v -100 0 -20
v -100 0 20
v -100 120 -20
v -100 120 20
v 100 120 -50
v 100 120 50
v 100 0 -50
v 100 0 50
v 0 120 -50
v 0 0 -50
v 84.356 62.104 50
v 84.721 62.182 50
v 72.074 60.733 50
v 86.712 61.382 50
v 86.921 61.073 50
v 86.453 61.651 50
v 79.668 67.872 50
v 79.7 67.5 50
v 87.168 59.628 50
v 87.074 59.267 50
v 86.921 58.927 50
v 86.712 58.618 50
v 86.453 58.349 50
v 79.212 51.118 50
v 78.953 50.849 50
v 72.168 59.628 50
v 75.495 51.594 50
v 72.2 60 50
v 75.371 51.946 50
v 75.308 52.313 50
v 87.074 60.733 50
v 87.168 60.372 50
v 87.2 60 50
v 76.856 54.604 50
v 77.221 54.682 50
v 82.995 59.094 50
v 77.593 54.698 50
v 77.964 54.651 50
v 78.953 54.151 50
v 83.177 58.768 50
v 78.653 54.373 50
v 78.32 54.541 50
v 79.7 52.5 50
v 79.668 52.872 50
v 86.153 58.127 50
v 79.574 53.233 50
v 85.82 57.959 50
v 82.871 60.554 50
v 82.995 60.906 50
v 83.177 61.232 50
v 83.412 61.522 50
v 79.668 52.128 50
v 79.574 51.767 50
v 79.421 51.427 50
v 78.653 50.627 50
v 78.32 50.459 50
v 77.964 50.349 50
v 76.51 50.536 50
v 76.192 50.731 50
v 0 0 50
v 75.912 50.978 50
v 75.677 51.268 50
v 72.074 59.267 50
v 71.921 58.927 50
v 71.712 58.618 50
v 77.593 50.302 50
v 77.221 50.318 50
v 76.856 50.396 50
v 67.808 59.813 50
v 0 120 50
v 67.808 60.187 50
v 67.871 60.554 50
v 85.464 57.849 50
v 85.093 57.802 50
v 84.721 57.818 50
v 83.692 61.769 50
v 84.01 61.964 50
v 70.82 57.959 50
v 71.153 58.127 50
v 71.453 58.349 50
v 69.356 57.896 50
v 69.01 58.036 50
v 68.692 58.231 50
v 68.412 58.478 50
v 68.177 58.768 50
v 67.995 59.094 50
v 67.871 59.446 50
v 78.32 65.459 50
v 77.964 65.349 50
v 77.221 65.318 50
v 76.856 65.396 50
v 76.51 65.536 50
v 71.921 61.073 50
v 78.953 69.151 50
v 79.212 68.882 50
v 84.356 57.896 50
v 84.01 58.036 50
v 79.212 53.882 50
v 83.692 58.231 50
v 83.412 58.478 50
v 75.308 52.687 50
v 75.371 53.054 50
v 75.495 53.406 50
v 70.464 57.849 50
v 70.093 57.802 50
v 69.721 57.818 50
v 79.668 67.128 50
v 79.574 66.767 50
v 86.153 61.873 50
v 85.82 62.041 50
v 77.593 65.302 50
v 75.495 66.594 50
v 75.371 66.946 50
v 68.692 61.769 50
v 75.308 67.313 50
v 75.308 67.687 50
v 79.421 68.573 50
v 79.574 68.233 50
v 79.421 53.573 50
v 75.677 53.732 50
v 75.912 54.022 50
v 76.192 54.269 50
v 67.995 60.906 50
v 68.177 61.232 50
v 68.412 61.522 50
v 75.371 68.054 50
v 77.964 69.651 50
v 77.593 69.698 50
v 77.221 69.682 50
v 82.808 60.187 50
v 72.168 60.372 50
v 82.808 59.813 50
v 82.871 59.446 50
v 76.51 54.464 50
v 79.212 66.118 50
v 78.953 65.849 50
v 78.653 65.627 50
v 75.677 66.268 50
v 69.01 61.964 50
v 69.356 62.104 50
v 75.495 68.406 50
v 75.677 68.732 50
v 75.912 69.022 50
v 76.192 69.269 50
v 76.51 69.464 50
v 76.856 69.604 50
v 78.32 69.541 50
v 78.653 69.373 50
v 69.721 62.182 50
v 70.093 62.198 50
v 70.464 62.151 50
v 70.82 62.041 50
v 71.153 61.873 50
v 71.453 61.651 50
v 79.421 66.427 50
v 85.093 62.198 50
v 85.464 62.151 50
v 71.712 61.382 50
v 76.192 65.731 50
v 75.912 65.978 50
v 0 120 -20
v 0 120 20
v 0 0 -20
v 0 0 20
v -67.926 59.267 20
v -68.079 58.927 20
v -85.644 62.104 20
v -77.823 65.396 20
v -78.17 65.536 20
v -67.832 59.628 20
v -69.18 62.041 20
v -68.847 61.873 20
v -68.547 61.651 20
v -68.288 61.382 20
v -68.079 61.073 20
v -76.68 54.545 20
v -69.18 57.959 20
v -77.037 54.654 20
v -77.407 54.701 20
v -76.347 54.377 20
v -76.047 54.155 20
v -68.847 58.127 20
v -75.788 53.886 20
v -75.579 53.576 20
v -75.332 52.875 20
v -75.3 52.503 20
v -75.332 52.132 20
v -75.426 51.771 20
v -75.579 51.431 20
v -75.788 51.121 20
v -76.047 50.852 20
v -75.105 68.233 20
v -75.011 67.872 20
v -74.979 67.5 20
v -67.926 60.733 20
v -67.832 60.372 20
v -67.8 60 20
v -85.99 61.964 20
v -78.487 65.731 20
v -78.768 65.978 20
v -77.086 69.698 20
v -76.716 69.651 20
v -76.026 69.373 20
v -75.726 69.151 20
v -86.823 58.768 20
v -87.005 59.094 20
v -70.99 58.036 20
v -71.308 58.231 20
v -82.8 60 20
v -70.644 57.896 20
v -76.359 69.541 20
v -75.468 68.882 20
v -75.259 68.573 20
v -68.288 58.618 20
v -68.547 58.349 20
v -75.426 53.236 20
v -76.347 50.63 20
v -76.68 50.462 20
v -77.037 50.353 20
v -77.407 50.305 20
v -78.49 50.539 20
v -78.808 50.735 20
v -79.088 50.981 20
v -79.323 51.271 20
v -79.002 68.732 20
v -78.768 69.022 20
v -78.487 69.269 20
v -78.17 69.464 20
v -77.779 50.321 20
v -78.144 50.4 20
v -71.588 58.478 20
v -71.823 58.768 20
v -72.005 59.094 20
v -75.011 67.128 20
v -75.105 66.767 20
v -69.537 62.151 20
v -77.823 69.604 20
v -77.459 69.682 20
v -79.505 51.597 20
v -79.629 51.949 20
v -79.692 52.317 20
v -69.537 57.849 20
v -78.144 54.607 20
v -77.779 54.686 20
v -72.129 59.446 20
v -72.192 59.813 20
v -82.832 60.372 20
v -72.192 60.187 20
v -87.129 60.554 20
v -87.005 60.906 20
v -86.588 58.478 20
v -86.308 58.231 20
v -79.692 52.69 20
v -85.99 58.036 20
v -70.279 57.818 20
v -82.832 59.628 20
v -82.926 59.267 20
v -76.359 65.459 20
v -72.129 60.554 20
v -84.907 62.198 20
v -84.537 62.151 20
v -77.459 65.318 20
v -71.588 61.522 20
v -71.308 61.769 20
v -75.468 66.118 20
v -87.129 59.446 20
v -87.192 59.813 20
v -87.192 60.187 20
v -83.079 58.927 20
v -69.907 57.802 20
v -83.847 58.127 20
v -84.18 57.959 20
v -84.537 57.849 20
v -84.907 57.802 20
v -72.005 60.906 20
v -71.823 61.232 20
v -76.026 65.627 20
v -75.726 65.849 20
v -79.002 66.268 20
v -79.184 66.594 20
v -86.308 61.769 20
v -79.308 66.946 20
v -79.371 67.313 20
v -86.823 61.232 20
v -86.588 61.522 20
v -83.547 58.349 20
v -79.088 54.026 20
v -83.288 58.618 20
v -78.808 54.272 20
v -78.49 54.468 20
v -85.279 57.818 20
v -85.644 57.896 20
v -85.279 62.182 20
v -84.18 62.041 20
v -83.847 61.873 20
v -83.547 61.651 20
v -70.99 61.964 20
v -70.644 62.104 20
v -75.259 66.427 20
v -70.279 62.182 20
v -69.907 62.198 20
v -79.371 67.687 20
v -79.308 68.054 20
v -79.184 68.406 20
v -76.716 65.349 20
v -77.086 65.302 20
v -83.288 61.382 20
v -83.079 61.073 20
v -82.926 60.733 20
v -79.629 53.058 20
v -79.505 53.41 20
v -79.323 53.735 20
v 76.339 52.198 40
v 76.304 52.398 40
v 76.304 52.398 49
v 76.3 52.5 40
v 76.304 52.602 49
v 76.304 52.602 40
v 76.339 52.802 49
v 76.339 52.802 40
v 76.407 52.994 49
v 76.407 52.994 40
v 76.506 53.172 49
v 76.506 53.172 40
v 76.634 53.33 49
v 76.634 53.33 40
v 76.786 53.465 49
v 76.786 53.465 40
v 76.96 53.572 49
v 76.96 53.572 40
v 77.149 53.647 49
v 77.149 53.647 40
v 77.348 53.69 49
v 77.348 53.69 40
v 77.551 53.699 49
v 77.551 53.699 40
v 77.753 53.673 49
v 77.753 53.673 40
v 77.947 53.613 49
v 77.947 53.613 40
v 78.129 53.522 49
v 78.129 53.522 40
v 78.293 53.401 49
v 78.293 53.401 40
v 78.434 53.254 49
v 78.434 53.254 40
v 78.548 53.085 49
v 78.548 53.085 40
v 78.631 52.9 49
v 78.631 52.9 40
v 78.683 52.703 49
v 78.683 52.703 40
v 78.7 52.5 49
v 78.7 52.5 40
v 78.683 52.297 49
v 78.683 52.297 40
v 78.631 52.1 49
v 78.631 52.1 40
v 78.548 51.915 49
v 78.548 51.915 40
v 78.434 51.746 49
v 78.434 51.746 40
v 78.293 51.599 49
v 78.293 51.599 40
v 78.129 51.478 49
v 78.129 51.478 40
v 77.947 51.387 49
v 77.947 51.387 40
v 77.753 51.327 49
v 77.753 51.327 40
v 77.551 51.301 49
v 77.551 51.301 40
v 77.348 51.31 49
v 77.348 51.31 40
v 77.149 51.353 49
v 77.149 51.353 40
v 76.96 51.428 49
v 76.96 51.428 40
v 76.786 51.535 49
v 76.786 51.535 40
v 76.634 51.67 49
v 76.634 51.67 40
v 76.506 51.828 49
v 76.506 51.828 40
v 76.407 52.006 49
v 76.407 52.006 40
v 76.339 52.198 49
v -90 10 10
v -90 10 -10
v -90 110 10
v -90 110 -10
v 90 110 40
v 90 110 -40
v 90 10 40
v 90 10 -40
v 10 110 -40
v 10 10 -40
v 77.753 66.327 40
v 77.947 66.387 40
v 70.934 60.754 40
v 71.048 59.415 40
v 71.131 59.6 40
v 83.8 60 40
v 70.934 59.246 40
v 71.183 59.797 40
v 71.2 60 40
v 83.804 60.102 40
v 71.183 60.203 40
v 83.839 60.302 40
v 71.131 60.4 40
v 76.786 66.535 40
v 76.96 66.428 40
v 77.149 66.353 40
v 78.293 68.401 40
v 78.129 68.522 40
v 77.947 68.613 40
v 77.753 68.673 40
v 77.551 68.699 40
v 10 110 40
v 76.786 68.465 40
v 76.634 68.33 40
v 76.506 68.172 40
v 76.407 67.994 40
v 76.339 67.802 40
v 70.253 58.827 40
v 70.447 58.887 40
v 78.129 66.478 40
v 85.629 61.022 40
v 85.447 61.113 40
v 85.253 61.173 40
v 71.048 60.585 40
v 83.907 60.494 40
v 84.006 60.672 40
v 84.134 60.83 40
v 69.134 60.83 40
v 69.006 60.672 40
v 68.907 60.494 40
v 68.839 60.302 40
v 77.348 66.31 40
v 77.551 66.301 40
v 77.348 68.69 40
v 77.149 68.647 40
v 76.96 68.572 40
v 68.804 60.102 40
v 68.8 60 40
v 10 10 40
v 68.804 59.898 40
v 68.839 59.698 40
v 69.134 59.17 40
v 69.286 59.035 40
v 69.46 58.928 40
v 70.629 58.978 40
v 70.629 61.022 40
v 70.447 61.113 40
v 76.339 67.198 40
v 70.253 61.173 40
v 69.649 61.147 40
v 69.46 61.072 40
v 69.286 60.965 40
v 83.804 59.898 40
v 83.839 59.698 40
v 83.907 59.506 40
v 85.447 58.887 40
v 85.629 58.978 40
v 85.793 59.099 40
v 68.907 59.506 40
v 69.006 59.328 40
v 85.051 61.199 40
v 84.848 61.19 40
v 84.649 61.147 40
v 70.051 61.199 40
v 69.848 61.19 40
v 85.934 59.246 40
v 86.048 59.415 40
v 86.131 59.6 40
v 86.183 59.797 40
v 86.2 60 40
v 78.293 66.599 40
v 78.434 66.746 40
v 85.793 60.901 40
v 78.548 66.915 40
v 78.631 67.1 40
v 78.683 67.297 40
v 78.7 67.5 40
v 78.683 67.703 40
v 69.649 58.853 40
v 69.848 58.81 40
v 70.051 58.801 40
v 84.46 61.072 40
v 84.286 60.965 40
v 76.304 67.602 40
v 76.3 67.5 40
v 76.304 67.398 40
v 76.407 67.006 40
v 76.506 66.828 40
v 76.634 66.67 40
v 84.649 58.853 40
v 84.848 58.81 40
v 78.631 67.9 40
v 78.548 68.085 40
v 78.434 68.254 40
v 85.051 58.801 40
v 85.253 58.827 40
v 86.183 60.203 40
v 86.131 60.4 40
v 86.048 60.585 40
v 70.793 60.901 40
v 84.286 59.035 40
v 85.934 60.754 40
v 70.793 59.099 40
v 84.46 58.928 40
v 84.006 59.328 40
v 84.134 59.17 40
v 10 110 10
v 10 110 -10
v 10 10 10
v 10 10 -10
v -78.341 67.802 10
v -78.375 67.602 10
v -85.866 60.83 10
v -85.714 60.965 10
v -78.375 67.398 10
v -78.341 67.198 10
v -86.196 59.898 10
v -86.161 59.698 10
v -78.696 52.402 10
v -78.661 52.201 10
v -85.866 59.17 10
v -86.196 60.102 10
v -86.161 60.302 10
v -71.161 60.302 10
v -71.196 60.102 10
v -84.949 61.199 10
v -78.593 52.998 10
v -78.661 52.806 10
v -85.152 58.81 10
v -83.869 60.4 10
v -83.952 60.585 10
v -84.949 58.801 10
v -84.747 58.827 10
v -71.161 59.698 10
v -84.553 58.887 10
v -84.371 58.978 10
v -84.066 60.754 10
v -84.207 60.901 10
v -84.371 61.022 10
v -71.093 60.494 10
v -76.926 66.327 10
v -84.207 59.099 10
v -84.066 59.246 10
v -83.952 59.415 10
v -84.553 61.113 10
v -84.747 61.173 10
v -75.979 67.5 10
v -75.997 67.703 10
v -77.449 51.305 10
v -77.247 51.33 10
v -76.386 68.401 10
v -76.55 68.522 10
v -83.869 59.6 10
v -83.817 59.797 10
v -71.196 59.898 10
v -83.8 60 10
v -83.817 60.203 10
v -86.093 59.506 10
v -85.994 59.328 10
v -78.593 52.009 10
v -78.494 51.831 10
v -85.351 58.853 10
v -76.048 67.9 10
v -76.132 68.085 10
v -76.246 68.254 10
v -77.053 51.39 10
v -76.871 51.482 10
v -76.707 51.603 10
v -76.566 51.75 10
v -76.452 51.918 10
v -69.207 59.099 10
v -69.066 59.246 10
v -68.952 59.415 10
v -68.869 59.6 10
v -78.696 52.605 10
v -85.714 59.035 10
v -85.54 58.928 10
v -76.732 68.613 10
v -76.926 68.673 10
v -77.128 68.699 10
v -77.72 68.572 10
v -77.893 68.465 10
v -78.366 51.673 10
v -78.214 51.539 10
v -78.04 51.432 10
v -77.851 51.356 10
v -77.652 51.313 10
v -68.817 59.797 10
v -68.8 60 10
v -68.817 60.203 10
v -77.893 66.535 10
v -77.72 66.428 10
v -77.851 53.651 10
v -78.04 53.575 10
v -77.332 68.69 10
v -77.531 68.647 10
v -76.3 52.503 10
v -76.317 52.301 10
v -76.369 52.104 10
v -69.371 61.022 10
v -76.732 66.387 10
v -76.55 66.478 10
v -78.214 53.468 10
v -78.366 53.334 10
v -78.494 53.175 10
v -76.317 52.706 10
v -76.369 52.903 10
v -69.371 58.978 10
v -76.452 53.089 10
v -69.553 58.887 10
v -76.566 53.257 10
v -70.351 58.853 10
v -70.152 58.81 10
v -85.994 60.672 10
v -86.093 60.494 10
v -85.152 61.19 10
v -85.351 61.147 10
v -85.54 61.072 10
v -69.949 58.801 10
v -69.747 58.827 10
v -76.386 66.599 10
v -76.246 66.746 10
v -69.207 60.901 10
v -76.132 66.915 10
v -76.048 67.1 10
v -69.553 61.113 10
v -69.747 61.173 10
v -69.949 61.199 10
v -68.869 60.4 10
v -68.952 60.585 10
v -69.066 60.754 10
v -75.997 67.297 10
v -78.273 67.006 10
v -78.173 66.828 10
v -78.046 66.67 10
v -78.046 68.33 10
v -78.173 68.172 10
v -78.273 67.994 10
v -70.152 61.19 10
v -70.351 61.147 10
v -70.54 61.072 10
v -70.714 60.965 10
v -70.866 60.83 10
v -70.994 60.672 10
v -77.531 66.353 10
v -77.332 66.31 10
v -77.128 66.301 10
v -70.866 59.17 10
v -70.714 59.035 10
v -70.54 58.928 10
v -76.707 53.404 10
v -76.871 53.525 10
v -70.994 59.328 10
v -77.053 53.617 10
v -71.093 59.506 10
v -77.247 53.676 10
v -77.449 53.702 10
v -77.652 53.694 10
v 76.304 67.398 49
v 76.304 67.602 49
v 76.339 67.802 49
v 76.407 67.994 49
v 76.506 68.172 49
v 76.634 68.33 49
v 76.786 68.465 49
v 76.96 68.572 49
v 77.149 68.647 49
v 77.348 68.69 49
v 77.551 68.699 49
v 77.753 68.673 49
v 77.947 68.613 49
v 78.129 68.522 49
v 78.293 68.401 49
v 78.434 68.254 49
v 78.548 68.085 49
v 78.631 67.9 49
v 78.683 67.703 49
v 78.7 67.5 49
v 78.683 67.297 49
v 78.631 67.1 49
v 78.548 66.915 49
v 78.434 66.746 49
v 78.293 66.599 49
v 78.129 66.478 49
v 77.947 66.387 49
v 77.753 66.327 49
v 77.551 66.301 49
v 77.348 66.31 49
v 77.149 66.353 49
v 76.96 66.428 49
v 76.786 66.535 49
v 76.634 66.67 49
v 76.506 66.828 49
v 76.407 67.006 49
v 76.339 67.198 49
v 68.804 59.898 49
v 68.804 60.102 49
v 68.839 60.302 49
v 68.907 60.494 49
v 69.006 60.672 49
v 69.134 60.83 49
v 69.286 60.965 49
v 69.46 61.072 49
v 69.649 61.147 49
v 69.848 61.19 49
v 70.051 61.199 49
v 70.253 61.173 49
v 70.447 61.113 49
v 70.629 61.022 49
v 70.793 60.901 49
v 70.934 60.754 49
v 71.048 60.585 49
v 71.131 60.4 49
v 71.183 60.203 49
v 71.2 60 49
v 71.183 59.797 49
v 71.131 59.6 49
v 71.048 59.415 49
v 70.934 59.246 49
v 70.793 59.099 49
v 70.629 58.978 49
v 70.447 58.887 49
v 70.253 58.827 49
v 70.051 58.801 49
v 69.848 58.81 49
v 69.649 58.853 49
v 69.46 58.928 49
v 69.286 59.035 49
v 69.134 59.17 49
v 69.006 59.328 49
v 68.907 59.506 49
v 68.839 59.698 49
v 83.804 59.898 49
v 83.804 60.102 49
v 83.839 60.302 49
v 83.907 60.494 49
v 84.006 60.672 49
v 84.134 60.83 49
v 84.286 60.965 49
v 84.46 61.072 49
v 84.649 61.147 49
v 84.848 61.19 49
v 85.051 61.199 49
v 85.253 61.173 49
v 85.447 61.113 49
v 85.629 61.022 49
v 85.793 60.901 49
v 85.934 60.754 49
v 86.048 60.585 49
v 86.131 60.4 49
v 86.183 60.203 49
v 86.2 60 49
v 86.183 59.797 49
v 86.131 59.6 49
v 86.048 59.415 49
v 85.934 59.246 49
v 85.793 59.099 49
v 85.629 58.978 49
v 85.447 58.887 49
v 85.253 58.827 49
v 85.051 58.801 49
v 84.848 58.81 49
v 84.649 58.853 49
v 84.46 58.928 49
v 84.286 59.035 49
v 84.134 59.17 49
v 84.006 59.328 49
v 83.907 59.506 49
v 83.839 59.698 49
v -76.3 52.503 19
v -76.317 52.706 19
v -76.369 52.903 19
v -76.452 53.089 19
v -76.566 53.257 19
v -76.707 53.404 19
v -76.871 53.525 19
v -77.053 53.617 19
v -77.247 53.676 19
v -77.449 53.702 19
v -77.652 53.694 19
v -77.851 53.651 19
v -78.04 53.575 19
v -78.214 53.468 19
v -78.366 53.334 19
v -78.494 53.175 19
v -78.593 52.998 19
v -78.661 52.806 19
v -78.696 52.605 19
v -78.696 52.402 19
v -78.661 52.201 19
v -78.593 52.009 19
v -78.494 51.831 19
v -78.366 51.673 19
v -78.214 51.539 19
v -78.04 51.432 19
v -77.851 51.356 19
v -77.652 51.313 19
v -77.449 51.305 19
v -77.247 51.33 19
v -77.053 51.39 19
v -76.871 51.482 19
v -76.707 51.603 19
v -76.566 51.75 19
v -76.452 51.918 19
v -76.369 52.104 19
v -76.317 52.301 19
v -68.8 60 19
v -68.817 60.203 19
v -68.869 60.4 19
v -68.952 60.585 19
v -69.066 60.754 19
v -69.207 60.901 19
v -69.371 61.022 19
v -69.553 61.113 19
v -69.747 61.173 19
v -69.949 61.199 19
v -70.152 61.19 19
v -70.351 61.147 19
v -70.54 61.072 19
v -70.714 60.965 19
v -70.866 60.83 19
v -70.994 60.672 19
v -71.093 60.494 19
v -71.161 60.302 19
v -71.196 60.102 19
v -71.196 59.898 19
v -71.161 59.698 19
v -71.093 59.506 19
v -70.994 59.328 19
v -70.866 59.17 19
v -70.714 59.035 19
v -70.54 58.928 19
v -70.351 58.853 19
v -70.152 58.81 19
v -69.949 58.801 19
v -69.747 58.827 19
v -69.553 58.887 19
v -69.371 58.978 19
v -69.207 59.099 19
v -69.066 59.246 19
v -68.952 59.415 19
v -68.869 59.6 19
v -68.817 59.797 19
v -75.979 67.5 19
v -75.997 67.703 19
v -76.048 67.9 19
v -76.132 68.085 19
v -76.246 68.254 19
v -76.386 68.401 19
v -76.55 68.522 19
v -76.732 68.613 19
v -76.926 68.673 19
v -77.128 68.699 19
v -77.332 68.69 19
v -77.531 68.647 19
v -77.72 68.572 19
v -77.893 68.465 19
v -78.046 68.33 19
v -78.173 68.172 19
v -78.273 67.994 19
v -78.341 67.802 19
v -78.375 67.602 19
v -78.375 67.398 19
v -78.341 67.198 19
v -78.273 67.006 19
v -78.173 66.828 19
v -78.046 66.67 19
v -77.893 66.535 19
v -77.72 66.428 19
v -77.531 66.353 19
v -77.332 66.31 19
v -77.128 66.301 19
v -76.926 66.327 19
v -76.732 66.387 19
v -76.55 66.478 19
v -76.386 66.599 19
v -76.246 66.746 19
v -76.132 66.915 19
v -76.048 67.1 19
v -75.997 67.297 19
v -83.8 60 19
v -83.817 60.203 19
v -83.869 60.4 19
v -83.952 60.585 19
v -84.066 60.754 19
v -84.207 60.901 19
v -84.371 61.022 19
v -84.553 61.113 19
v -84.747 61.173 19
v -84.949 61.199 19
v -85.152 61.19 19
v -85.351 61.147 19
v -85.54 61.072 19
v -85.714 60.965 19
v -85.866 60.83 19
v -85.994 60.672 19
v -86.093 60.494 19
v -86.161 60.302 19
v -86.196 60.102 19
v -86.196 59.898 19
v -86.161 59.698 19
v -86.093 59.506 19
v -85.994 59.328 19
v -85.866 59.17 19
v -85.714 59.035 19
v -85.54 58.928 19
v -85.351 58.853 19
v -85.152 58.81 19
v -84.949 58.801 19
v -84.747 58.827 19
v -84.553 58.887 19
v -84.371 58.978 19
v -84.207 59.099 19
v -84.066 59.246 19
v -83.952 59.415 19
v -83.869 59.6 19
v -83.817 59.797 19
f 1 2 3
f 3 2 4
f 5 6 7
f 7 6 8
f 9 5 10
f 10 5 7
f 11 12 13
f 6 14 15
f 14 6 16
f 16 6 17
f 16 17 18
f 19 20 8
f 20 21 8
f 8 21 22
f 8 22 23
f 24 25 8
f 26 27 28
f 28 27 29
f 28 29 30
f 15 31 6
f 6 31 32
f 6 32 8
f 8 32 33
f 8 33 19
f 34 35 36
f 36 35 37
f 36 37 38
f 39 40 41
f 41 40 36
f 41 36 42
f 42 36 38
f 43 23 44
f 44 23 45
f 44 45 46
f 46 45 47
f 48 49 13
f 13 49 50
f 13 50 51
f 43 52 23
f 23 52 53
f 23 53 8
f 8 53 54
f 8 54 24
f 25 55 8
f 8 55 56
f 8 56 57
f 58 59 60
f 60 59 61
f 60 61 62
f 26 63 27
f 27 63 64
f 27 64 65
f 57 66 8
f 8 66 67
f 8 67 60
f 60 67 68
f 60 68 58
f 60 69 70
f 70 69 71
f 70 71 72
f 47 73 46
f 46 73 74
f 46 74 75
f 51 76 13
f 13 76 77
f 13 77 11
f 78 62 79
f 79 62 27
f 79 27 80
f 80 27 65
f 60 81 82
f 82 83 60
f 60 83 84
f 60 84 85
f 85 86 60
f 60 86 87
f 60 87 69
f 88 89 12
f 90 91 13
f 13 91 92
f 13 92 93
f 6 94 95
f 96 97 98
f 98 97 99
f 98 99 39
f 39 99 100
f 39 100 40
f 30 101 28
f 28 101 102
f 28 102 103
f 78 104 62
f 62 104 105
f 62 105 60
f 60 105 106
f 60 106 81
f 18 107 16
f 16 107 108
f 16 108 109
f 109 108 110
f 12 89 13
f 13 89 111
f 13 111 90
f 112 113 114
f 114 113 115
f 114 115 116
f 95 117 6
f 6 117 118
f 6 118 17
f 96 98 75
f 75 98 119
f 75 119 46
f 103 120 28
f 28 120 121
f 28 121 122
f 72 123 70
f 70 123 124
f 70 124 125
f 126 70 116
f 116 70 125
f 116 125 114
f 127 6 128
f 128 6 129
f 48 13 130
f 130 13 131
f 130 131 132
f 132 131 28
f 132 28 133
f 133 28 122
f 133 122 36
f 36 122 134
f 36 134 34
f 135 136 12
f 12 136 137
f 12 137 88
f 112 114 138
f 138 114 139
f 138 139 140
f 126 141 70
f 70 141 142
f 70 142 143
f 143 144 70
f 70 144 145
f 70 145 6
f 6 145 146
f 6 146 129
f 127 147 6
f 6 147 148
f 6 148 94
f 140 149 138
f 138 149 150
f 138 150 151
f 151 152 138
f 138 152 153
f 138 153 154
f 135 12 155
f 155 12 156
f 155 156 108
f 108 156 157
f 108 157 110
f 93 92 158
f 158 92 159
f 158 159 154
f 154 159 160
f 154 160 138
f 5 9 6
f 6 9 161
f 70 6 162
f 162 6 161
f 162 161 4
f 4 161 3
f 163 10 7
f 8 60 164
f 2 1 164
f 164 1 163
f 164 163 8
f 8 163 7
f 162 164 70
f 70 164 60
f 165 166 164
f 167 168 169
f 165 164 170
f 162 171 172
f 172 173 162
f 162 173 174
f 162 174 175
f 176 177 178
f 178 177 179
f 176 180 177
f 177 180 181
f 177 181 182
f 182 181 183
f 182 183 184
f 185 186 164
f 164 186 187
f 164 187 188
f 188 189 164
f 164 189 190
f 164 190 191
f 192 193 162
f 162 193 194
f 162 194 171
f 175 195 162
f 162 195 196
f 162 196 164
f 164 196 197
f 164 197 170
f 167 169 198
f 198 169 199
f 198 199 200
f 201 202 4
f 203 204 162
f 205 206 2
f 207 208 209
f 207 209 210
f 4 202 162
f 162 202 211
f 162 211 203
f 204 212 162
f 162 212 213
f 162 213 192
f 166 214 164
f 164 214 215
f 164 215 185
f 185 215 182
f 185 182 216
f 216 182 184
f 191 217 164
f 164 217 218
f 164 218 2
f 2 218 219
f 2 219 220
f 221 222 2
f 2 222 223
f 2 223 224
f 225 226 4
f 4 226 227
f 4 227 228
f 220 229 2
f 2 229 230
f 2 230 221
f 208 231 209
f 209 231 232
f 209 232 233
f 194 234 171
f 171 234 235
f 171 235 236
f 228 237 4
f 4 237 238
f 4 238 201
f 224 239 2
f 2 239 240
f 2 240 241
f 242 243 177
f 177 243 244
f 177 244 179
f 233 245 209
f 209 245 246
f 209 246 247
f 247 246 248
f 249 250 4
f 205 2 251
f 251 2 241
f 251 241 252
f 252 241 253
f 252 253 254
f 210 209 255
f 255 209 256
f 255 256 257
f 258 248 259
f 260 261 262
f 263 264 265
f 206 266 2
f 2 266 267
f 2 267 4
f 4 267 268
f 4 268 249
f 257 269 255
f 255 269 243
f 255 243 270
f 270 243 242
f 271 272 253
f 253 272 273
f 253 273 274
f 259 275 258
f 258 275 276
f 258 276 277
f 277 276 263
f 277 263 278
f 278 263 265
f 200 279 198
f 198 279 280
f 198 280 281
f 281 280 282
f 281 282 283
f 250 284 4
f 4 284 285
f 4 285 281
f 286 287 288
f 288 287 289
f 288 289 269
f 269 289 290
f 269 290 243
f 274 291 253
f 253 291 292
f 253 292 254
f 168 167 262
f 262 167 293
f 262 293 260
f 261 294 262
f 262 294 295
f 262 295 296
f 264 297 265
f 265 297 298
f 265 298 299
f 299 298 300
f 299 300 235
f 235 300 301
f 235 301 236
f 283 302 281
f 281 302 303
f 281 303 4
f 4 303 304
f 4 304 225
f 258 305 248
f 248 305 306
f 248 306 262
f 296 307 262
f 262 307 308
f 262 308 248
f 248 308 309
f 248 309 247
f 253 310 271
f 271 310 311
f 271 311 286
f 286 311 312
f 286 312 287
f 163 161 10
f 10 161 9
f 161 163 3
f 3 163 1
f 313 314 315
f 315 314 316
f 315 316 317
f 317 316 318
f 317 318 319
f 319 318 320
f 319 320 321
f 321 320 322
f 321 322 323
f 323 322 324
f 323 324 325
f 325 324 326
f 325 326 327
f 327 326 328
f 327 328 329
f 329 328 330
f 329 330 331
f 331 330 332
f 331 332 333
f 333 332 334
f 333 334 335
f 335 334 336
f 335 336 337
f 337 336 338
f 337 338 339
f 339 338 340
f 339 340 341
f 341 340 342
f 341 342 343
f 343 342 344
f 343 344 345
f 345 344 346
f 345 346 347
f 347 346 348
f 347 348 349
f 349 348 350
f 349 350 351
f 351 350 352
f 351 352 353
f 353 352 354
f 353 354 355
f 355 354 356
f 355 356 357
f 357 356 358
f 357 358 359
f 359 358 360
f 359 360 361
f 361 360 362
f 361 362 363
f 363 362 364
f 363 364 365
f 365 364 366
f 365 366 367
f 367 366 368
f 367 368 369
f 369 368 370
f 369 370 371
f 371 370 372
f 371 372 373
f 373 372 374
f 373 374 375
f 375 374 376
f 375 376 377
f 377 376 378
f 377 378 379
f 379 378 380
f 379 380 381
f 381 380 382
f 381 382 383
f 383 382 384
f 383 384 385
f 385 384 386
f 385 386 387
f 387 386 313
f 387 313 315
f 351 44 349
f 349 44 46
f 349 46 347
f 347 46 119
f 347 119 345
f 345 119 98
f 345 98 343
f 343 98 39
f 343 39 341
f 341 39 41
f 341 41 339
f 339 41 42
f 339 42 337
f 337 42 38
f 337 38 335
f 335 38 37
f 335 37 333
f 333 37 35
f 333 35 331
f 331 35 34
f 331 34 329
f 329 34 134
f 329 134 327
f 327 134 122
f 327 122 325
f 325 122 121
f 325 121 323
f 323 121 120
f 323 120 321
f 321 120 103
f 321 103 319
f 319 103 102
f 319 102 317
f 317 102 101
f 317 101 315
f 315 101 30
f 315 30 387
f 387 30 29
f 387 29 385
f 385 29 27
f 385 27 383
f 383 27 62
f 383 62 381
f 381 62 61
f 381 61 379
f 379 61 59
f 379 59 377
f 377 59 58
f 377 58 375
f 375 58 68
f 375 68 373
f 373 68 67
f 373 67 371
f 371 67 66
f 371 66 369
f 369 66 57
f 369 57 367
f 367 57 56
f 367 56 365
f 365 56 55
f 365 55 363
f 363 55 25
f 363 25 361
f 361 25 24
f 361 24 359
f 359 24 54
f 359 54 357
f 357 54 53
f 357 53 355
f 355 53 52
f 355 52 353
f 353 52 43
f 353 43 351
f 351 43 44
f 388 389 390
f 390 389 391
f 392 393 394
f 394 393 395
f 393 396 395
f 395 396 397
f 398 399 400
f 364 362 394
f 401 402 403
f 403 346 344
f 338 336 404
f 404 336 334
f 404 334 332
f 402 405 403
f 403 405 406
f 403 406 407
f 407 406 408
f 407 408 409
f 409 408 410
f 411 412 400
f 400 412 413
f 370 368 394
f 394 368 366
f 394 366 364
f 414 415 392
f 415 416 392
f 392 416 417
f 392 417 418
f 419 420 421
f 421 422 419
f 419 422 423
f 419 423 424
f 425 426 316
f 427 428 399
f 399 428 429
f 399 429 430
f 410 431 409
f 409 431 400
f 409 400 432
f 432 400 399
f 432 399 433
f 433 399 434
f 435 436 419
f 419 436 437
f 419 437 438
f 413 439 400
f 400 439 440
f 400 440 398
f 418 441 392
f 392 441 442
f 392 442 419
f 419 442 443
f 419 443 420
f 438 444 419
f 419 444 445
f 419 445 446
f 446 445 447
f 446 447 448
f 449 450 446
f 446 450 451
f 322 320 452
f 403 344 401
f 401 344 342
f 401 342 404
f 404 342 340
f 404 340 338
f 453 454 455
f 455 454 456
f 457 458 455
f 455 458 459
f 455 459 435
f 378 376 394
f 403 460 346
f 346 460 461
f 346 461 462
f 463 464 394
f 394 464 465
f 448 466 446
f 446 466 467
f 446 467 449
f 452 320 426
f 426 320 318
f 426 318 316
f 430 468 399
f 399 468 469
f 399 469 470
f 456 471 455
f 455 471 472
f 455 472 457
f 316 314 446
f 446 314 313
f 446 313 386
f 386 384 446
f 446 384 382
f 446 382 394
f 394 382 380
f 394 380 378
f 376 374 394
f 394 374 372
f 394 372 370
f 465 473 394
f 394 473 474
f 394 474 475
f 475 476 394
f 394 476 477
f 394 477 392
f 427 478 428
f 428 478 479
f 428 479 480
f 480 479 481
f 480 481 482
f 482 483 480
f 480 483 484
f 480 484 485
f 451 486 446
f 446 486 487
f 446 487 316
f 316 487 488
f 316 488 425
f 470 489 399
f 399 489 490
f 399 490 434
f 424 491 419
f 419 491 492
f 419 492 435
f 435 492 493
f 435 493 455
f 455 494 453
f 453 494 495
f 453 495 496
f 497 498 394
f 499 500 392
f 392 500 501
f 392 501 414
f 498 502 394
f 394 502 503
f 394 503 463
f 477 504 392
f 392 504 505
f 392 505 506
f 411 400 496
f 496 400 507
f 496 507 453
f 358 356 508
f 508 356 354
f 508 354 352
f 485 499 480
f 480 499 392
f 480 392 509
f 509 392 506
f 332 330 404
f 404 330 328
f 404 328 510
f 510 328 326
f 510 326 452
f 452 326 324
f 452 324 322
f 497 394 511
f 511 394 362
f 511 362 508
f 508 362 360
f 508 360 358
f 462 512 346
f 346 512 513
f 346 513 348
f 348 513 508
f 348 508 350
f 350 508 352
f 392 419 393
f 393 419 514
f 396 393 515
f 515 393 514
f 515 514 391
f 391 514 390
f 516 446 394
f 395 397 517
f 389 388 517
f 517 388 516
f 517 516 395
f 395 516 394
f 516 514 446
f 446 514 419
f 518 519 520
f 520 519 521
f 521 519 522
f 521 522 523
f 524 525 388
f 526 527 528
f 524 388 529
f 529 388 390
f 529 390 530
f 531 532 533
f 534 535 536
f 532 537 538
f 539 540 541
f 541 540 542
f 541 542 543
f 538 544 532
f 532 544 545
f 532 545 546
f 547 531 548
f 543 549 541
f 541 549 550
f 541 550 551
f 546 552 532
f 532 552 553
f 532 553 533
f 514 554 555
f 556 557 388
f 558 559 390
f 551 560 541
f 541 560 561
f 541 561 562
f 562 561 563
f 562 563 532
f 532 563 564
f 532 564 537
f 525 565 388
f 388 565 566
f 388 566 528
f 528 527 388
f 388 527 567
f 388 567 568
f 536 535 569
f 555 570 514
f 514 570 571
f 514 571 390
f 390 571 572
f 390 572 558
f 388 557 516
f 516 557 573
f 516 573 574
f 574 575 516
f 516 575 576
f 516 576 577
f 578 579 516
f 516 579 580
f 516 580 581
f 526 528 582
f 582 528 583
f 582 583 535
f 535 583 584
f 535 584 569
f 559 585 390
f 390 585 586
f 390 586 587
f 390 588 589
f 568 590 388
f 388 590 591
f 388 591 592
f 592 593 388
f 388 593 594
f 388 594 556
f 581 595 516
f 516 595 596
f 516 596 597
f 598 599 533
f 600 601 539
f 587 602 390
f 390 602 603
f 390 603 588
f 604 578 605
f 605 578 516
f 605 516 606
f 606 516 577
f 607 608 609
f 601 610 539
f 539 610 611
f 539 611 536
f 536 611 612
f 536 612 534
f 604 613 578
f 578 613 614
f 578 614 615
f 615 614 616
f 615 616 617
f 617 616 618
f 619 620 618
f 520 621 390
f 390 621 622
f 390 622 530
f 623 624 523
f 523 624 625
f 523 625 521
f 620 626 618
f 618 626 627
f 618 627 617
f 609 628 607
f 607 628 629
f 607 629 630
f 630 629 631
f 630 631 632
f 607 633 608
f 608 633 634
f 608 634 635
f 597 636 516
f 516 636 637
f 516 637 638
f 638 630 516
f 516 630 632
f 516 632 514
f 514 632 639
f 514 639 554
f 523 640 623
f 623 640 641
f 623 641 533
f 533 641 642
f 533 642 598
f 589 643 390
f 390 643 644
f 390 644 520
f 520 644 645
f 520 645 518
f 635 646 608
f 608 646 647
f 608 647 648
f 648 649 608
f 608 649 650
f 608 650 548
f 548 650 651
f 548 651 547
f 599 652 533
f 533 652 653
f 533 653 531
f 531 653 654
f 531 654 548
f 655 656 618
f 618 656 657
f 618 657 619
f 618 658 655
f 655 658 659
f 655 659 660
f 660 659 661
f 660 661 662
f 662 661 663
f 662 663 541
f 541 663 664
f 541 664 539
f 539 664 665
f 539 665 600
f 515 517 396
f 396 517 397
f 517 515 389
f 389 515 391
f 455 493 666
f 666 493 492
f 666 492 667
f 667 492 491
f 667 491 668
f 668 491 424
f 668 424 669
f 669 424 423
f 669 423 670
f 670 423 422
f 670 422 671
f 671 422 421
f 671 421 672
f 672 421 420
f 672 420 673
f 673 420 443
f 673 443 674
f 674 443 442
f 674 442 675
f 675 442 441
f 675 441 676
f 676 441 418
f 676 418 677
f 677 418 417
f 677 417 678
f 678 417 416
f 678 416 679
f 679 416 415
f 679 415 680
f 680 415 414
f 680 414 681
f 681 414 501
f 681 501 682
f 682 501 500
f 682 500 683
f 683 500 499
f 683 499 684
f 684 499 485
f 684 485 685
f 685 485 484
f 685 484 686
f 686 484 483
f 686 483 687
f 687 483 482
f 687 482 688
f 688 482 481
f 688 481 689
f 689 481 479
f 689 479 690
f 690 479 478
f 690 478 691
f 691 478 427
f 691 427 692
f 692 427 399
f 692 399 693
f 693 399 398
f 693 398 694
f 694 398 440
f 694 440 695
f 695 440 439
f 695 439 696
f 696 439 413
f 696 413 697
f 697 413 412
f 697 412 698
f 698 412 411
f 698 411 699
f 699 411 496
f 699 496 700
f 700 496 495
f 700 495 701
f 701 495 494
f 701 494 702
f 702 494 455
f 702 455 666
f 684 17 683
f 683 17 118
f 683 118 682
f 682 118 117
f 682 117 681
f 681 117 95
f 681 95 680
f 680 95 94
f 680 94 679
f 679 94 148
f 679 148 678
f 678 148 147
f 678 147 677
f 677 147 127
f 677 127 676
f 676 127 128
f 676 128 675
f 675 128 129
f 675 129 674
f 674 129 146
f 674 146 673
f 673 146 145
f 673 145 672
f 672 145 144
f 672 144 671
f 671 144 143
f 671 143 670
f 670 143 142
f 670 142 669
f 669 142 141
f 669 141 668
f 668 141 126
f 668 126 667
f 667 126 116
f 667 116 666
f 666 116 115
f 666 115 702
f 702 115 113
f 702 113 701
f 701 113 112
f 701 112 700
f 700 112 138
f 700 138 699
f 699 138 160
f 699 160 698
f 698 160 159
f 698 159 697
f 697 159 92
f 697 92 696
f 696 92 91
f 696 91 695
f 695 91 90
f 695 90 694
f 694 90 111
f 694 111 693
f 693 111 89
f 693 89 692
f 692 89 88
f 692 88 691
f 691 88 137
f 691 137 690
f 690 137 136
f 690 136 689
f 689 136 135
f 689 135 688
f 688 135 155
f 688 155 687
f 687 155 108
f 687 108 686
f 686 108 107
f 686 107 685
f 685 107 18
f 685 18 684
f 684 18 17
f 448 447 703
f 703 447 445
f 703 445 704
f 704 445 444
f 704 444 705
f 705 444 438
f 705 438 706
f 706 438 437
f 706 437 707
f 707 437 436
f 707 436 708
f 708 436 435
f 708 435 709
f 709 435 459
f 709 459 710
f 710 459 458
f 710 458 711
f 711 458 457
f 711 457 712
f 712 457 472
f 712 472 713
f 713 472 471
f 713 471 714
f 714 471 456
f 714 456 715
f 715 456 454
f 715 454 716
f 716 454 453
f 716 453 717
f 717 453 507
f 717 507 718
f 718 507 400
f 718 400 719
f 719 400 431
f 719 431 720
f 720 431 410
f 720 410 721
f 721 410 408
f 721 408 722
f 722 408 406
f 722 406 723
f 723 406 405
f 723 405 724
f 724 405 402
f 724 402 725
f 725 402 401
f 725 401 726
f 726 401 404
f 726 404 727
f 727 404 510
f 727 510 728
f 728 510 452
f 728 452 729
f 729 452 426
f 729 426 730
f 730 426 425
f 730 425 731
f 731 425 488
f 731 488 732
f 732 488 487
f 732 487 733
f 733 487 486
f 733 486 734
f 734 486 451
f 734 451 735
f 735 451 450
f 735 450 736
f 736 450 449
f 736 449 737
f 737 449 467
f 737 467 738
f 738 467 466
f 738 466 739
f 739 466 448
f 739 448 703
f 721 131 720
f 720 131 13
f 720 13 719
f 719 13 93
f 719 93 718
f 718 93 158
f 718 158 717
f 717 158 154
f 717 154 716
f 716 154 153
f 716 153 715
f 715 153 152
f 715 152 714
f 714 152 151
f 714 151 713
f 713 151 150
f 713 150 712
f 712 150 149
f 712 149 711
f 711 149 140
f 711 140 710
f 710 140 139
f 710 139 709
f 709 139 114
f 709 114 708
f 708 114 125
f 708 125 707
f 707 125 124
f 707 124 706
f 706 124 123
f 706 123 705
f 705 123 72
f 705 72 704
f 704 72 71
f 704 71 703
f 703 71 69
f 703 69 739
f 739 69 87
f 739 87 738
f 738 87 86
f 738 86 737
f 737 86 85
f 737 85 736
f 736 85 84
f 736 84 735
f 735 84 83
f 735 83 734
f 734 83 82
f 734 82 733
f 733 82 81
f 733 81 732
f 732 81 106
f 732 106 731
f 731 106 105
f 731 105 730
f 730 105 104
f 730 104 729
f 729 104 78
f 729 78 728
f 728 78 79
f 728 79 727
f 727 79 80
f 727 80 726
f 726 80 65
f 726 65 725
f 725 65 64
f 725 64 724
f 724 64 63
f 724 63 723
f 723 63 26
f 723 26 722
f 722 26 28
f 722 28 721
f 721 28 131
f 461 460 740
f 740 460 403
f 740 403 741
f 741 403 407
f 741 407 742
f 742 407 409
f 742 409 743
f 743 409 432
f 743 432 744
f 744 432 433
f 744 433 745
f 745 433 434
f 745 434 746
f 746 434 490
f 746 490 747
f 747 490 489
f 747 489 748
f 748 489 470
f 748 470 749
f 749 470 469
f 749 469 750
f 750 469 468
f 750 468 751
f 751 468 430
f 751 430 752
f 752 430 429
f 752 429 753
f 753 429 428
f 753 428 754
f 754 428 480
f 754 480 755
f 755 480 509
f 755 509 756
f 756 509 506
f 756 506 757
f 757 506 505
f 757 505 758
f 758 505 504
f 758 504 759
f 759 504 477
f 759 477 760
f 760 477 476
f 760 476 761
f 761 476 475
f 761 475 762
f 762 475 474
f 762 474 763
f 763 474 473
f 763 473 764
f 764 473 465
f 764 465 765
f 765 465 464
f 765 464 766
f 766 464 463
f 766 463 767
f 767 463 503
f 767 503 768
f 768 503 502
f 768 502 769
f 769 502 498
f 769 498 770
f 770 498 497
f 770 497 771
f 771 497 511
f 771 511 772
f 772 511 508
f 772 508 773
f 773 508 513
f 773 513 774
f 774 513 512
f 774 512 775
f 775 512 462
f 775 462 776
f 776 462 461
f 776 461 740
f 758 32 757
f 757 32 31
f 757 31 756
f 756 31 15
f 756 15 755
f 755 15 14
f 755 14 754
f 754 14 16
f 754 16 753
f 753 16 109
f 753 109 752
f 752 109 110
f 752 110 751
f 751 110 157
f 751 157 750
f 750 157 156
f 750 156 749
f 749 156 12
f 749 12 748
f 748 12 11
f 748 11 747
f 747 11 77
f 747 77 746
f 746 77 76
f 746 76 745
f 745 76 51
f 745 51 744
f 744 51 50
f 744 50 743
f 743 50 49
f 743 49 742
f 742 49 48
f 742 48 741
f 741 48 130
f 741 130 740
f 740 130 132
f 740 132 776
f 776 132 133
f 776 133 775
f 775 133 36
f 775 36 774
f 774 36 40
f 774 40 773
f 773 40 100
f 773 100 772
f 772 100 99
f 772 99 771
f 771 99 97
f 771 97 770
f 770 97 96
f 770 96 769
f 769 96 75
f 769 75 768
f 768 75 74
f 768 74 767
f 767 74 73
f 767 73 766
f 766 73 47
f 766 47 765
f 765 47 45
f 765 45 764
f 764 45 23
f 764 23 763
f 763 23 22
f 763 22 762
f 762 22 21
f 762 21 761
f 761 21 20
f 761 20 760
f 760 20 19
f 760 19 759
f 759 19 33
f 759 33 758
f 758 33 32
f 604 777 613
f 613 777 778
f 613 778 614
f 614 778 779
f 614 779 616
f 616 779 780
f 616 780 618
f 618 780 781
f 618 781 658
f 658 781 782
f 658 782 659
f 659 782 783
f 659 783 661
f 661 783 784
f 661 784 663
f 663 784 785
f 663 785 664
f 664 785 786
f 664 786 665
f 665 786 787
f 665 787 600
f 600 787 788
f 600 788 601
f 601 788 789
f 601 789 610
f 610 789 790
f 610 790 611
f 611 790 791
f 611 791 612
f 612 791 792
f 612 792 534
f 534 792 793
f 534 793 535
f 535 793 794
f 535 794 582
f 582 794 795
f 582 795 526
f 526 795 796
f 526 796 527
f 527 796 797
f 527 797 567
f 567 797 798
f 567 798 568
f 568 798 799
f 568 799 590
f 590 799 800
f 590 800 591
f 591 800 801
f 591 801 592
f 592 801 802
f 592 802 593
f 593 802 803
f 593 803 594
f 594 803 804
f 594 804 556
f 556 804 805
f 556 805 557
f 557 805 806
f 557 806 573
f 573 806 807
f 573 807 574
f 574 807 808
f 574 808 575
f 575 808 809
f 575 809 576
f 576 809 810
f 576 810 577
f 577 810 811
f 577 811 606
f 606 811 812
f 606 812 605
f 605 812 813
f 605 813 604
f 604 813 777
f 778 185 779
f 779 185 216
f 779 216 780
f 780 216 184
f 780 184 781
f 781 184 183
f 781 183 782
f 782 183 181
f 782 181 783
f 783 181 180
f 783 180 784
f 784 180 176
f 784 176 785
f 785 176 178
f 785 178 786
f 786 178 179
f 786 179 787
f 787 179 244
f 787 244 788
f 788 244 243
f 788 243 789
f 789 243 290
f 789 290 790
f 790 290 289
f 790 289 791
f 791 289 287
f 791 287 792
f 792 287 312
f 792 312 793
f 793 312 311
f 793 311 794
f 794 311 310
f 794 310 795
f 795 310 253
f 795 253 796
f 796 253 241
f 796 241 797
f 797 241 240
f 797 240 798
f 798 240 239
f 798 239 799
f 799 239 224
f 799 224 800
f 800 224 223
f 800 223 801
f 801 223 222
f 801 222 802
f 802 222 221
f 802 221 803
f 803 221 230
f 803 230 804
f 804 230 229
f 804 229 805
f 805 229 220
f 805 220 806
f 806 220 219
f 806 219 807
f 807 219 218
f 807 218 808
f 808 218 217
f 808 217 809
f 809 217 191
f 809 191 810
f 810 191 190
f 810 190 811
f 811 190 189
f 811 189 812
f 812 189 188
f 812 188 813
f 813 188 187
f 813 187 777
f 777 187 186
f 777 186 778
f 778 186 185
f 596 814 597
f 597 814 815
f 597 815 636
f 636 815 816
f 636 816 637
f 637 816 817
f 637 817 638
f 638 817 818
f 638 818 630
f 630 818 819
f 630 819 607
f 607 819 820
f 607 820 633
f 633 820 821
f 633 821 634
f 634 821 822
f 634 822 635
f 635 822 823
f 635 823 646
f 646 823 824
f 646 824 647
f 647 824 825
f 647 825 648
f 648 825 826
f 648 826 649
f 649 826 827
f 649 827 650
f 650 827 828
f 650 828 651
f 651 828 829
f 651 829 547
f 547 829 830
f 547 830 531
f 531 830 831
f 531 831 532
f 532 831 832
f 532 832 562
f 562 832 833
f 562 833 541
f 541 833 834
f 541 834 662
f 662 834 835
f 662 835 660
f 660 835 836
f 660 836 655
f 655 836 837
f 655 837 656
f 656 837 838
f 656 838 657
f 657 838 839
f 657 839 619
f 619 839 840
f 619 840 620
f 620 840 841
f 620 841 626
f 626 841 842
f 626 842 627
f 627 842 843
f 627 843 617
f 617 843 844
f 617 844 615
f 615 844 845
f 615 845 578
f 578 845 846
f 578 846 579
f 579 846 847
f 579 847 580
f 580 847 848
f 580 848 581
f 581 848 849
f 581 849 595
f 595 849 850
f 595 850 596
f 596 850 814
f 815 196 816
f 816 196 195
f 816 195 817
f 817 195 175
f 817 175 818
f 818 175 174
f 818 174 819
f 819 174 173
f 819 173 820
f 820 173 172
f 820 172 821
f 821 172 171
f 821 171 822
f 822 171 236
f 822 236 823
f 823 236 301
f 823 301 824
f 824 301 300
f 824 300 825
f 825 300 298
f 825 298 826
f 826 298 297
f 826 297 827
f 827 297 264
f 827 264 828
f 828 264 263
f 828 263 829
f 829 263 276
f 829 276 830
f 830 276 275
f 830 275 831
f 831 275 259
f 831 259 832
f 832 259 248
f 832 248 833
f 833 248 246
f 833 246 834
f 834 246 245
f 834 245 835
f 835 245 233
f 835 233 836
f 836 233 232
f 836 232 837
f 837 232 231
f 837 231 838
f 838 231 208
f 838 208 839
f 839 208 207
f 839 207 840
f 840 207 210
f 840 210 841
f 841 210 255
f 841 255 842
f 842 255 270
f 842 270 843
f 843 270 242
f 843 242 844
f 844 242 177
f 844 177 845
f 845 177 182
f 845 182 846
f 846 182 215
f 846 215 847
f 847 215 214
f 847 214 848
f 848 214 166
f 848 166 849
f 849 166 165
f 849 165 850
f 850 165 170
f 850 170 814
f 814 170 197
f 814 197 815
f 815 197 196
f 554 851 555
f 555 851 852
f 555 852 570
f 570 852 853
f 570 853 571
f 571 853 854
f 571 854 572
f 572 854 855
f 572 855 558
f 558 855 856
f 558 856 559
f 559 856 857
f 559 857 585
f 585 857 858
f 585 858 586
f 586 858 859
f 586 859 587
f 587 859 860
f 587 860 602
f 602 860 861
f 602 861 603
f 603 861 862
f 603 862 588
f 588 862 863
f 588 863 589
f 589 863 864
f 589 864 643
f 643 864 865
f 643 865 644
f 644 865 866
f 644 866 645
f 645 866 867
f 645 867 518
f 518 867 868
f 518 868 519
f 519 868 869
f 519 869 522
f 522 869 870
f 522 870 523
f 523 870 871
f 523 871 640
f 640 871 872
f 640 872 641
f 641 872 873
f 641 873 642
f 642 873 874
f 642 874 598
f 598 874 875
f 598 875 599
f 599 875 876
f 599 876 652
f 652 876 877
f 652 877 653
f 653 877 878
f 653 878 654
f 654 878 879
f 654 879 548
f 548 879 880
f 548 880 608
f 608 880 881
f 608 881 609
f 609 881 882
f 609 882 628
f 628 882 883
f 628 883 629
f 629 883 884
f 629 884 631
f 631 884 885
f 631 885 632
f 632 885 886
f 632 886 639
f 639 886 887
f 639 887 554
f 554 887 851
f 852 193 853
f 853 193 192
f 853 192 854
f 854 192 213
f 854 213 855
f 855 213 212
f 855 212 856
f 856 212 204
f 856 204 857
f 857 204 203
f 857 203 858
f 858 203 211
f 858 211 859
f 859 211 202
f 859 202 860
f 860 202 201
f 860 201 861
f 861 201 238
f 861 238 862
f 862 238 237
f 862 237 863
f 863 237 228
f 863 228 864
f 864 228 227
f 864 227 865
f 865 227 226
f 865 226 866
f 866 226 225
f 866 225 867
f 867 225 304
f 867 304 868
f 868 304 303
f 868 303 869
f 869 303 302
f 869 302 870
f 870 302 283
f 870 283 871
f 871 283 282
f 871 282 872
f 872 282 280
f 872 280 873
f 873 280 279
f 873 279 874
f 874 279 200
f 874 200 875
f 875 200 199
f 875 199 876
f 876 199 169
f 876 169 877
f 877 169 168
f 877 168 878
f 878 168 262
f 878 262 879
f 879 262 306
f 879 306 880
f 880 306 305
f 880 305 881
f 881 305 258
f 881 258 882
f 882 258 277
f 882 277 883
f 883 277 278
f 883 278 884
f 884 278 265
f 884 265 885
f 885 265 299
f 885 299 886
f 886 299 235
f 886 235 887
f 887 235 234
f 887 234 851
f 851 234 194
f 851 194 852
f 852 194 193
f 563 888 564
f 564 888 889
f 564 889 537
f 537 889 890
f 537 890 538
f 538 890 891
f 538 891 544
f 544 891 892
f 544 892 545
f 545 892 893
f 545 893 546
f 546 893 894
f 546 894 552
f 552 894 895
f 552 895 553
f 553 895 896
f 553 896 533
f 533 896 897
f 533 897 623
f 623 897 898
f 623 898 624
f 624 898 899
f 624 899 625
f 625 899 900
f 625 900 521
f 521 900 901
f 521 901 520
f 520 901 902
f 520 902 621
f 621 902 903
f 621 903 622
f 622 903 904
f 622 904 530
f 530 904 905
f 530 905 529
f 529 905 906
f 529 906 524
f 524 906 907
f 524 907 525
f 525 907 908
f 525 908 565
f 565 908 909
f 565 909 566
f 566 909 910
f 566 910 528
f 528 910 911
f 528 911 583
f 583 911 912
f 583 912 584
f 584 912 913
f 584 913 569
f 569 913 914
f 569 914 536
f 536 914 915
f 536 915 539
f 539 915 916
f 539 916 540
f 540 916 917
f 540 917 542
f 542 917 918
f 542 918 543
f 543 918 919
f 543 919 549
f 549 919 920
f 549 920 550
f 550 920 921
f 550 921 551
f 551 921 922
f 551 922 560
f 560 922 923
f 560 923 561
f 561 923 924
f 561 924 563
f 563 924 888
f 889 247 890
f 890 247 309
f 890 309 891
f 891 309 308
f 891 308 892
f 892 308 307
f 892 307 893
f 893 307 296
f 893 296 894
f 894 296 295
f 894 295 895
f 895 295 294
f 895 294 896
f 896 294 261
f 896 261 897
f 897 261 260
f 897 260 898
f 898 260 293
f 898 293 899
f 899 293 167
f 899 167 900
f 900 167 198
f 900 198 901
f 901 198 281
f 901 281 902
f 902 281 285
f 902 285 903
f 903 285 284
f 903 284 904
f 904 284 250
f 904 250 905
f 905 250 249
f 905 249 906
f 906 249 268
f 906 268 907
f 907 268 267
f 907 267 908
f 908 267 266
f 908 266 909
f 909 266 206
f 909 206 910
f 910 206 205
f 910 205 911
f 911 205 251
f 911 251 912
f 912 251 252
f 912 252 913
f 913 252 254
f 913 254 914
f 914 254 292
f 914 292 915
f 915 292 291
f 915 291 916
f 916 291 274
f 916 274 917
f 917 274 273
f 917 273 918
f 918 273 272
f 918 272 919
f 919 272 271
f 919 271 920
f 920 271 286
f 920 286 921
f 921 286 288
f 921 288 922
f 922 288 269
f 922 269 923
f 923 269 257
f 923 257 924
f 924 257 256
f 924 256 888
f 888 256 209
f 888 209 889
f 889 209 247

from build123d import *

# Parameters (mm, degrees)
SKETCH3_W                                       = 200
SKETCH3_H                                       = 100
BOSS_EXTRUDE2_DEPTH                             = 120
SKETCH4_W                                       = 100
SKETCH4_H                                       = 120
CUT_EXTRUDE1_DEPTH                              = 30
SKETCH5_W                                       = 100
SKETCH5_H                                       = 120
CUT_EXTRUDE2_DEPTH                              = 30
SHELL1_START                                    = 10
SHELL1_OUTLINE_W                                = 100
SHELL1_OUTLINE_H                                = 80
SHELL1_DEPTH                                    = 80
SHELL1_START_2                                  = -90
SHELL1_2_OUTLINE_W                              = 100
SHELL1_2_OUTLINE_H                              = 20
SHELL1_2_DEPTH                                  = 100
CSK_FOR_M2_FLAT_HEAD_MACHINE_SCREW1_D           = 2.4
CSK_FOR_M2_FLAT_HEAD_MACHINE_SCREW1_DEPTH       = 15
CSK_FOR_M2_FLAT_HEAD_MACHINE_SCREW1_CSINK_D     = 4.4
CSK_FOR_M2_FLAT_HEAD_MACHINE_SCREW1_CSINK_ANGLE = 90
CSK_FOR_M2_FLAT_HEAD_MACHINE_SCREW1_TIP         = 0.721032743
CSK_FOR_M2_FLAT_HEAD_MACHINE_SCREW2_D           = 2.4
CSK_FOR_M2_FLAT_HEAD_MACHINE_SCREW2_DEPTH       = 15
CSK_FOR_M2_FLAT_HEAD_MACHINE_SCREW2_CSINK_D     = 4.4
CSK_FOR_M2_FLAT_HEAD_MACHINE_SCREW2_CSINK_ANGLE = 90
CSK_FOR_M2_FLAT_HEAD_MACHINE_SCREW2_TIP         = 0.721032743


# Read off the part's stored shape, not the designer's step: Shell1
with BuildPart() as part:
    # Sketch3 → Boss-Extrude2 (new body)
    with BuildSketch(Plane(origin=(0, 0, 0), x_dir=(1, 0, 0), z_dir=(0, 1, 0))):
        Rectangle(SKETCH3_W, SKETCH3_H)
    extrude(amount=BOSS_EXTRUDE2_DEPTH)

    # Sketch4 → Cut-Extrude1 (cut)
    with BuildSketch(Plane.XY.offset(50)):
        with Locations((-50, 60)):
            Rectangle(SKETCH4_W, SKETCH4_H)
    extrude(amount=-CUT_EXTRUDE1_DEPTH, mode=Mode.SUBTRACT)

    # Sketch5 → Cut-Extrude2 (cut)
    with BuildSketch(Plane(origin=(0, 0, -50), x_dir=(-1, 0, 0), z_dir=(0, 0, -1))):
        with Locations((50, 60)):
            Rectangle(SKETCH5_W, SKETCH5_H)
    extrude(amount=-CUT_EXTRUDE2_DEPTH, mode=Mode.SUBTRACT)

    # Shell1 outline → Shell1 (cut)
    with BuildSketch(Plane.YZ.offset(SHELL1_START)):
        with Locations((60, 0)):
            Rectangle(SHELL1_OUTLINE_W, SHELL1_OUTLINE_H)
    extrude(amount=SHELL1_DEPTH, mode=Mode.SUBTRACT)

    # Shell1 2 outline → Shell1 2 (cut)
    with BuildSketch(Plane.YZ.offset(SHELL1_START_2)):
        with Locations((60, 0)):
            Rectangle(SHELL1_2_OUTLINE_W, SHELL1_2_OUTLINE_H)
    extrude(amount=SHELL1_2_DEPTH, mode=Mode.SUBTRACT)

    # CSK for M2 Flat Head Machine Screw1
    with Locations(Plane.XY.offset(50)):
        with Locations((85, 60), (70, 60), (77.5, 67.5), (77.5, 52.5)):
            CounterSinkHole(CSK_FOR_M2_FLAT_HEAD_MACHINE_SCREW1_D / 2, CSK_FOR_M2_FLAT_HEAD_MACHINE_SCREW1_CSINK_D / 2, depth=CSK_FOR_M2_FLAT_HEAD_MACHINE_SCREW1_DEPTH, counter_sink_angle=CSK_FOR_M2_FLAT_HEAD_MACHINE_SCREW1_CSINK_ANGLE)
            with Locations((0, 0, -(CSK_FOR_M2_FLAT_HEAD_MACHINE_SCREW1_DEPTH + CSK_FOR_M2_FLAT_HEAD_MACHINE_SCREW1_TIP / 2))):  # 118° drill point
                Cone(0, CSK_FOR_M2_FLAT_HEAD_MACHINE_SCREW1_D / 2, CSK_FOR_M2_FLAT_HEAD_MACHINE_SCREW1_TIP, mode=Mode.SUBTRACT)

    # CSK for M2 Flat Head Machine Screw2
    with Locations(Plane.XY.offset(20)):
        with Locations((-85, 60), (-77.179261413, 67.5), (-70, 60), (-77.5, 52.5034295)):
            CounterSinkHole(CSK_FOR_M2_FLAT_HEAD_MACHINE_SCREW2_D / 2, CSK_FOR_M2_FLAT_HEAD_MACHINE_SCREW2_CSINK_D / 2, depth=CSK_FOR_M2_FLAT_HEAD_MACHINE_SCREW2_DEPTH, counter_sink_angle=CSK_FOR_M2_FLAT_HEAD_MACHINE_SCREW2_CSINK_ANGLE)
            with Locations((0, 0, -(CSK_FOR_M2_FLAT_HEAD_MACHINE_SCREW2_DEPTH + CSK_FOR_M2_FLAT_HEAD_MACHINE_SCREW2_TIP / 2))):  # 118° drill point
                Cone(0, CSK_FOR_M2_FLAT_HEAD_MACHINE_SCREW2_D / 2, CSK_FOR_M2_FLAT_HEAD_MACHINE_SCREW2_TIP, mode=Mode.SUBTRACT)


solid = part.part
